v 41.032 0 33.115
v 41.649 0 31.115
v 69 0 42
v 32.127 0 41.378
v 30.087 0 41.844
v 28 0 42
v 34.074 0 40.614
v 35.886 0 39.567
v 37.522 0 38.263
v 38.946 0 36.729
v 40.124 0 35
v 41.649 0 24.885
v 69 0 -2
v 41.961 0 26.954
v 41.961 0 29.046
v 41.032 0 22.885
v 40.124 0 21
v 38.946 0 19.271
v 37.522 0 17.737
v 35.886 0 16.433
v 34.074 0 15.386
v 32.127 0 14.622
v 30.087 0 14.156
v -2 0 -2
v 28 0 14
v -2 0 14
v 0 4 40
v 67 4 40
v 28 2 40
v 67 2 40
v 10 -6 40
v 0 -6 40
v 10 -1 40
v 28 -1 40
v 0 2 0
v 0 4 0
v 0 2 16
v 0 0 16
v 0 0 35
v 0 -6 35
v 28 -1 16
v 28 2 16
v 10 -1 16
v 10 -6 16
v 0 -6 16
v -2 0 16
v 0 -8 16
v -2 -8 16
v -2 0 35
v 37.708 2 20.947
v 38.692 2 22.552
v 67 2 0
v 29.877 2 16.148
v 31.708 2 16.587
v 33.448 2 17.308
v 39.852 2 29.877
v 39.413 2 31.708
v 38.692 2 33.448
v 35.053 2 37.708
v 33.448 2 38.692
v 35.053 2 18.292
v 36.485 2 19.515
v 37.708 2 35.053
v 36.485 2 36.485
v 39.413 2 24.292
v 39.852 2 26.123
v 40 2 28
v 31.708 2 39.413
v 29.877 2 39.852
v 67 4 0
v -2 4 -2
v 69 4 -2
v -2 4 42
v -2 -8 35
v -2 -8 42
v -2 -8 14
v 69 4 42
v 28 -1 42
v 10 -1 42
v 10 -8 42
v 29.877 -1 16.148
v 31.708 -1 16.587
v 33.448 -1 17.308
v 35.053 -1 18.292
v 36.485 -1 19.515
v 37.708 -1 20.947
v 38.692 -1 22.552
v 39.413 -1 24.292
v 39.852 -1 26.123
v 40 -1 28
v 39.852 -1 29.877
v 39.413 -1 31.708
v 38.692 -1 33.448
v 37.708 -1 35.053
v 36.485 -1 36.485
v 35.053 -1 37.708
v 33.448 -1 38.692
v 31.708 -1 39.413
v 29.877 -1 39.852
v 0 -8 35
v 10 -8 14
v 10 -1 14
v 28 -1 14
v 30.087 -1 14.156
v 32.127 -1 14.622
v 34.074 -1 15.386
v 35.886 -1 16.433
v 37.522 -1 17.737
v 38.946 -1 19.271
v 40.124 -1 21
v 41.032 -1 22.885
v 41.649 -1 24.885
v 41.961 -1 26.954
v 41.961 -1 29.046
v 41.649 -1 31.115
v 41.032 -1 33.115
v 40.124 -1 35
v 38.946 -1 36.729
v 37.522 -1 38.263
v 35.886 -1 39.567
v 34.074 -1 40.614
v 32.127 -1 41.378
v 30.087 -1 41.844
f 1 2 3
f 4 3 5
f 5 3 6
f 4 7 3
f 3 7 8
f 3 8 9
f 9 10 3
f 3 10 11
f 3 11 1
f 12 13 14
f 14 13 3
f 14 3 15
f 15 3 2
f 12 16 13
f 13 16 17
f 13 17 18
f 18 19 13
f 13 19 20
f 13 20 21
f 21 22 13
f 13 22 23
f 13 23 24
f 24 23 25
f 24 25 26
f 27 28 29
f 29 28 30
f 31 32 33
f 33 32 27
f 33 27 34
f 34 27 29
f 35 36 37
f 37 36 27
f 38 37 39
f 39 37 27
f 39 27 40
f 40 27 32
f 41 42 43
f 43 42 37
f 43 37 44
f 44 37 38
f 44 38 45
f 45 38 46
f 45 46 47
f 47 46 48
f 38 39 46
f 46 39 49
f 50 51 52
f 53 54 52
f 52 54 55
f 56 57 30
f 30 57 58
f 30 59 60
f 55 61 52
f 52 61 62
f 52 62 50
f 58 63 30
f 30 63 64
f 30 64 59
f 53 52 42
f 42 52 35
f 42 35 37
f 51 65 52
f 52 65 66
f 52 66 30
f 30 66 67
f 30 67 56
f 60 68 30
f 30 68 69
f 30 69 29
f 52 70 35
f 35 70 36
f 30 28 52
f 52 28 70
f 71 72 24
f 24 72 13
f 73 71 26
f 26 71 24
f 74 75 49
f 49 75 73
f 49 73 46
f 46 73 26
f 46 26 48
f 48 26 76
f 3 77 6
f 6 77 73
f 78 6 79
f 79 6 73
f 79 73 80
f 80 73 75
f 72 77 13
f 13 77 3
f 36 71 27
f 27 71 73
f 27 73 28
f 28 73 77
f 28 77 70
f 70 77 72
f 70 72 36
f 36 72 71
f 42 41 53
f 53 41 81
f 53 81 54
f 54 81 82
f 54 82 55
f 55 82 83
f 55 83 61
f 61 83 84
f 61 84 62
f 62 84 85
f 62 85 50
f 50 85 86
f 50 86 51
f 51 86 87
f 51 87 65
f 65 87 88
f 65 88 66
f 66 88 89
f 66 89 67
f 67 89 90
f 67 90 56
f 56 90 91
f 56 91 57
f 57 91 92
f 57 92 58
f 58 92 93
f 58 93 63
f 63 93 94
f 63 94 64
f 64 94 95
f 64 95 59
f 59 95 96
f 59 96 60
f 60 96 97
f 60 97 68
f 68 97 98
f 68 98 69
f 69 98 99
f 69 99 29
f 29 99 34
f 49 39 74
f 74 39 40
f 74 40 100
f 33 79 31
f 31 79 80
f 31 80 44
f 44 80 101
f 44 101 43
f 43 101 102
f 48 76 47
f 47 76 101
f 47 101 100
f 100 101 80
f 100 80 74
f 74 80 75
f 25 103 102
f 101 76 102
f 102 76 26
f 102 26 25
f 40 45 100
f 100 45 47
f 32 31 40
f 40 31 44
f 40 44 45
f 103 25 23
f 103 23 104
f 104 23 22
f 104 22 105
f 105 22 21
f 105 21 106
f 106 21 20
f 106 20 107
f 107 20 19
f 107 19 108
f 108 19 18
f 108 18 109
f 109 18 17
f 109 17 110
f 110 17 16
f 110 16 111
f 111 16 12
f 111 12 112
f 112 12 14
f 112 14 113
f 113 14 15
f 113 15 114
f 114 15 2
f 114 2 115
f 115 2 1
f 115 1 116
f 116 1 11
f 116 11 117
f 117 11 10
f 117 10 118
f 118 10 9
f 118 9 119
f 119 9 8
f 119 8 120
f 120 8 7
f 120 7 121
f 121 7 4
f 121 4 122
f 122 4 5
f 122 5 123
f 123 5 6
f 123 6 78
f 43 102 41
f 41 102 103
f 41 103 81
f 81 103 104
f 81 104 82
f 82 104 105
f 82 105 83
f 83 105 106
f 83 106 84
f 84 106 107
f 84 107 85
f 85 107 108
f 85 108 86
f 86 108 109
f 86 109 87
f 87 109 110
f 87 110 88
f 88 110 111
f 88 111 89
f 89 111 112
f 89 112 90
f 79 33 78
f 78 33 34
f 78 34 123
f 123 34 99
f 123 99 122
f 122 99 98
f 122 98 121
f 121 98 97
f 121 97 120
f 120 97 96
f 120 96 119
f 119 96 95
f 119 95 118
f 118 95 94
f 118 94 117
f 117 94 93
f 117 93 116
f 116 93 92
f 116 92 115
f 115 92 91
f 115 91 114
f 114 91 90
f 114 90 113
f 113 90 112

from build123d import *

# Parameters (mm, degrees)
SKETCH1_W           = 67
SKETCH1_H           = 40
BOSS_EXTRUDE1_DEPTH = 2
SKETCH1_3_W         = 71
SKETCH1_3_H         = 44
SKETCH1_3_W_2       = 67
SKETCH1_3_H_2       = 40
BOSS_EXTRUDE2_DEPTH = 4
SKETCH1_5_W         = 28
SKETCH1_5_H         = 24
CUT_EXTRUDE4_DEPTH  = 2
SKETCH2_W           = 12
SKETCH2_H           = 2
BOSS_EXTRUDE3_DEPTH = 8
SKETCH3_W           = 10
SKETCH3_H           = 2
BOSS_EXTRUDE4_DEPTH = 24
BOSS_EXTRUDE5_START = 1
BOSS_EXTRUDE5_DEPTH = 1


with BuildPart() as part:
    # Sketch1 → Boss-Extrude1 (new body)
    with BuildSketch(Plane(origin=(0, 0, 0), x_dir=(1, 0, 0), z_dir=(0, 1, 0))):
        with Locations((33.5, -20)):
            Rectangle(SKETCH1_W, SKETCH1_H)
    extrude(amount=BOSS_EXTRUDE1_DEPTH)

    # Sketch1<3> → Boss-Extrude2 (add)
    with BuildSketch(Plane(origin=(0, 0, 0), x_dir=(1, 0, 0), z_dir=(0, 1, 0))):
        with Locations((33.5, -20)):
            Rectangle(SKETCH1_3_W, SKETCH1_3_H)
        with Locations((33.5, -20)):
            Rectangle(SKETCH1_3_W_2, SKETCH1_3_H_2, mode=Mode.SUBTRACT)
    extrude(amount=BOSS_EXTRUDE2_DEPTH)

    # Sketch1<5> → Cut-Extrude4 (cut)
    with BuildSketch(Plane(origin=(0, 0, 0), x_dir=(1, 0, 0), z_dir=(0, 1, 0))):
        with Locations((14, -28)):
            Rectangle(SKETCH1_5_W, SKETCH1_5_H)
        with BuildLine():
            ThreePointArc((28, -16), (40, -28), (28, -40))
            Line((28, -40), (28, -16))
        make_face()
    extrude(amount=CUT_EXTRUDE4_DEPTH, mode=Mode.SUBTRACT)

    # Sketch2 → Boss-Extrude3 (add)
    with BuildSketch(Plane.XZ):
        with Locations((4, 15)):
            Rectangle(SKETCH2_W, SKETCH2_H)
        Polygon((-2, 42), (10, 42), (10, 40), (0, 40), (0, 35), (-2, 35), (-2, 40), align=None)
    extrude(amount=BOSS_EXTRUDE3_DEPTH)

    # Sketch3 → Boss-Extrude4 (add)
    with BuildSketch(Plane(origin=(0, 0, 40), x_dir=(-1, 0, 0), z_dir=(0, 0, -1))):
        with Locations((-5, -7)):
            Rectangle(SKETCH3_W, SKETCH3_H)
    extrude(amount=BOSS_EXTRUDE4_DEPTH)

    # Sketch5 → Boss-Extrude5 (add)
    with BuildSketch(Plane.XZ.offset(BOSS_EXTRUDE5_START)):
        with BuildLine():
            Line((10, 16), (28, 16))
            ThreePointArc((28, 16), (40, 28), (28, 40))
            Line((28, 40), (10, 40))
            Line((10, 40), (10, 42))
            Line((10, 42), (28, 42))
            ThreePointArc((28, 42), (42, 28), (28, 14))
            Line((28, 14), (10, 14))
            Line((10, 14), (10, 16))
        make_face()
    extrude(amount=-BOSS_EXTRUDE5_DEPTH)


solid = part.part
